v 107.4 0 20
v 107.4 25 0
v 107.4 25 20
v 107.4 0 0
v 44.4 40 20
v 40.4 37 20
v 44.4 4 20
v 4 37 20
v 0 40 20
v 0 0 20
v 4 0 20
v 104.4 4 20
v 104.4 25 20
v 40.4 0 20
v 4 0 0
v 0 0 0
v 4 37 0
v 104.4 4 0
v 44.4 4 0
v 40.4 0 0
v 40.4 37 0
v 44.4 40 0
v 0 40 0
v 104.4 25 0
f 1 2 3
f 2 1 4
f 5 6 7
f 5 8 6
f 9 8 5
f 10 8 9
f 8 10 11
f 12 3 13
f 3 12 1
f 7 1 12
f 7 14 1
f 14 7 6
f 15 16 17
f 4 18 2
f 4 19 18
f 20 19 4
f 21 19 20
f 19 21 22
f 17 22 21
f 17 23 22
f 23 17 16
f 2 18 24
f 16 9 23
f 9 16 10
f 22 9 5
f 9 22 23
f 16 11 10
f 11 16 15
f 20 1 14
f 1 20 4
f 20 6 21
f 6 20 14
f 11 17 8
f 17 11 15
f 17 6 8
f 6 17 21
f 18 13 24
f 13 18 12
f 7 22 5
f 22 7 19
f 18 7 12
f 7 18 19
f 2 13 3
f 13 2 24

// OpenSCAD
w = 36.4;

difference() {
  cube([w + 11 + 60, 40, 20]);

  // left cutout
  translate([4, -3, -1])
  cube([w, 40, 24]);

  // right cutout
  translate([w + 8, 4, -1])
  cube([60, 40, 24]);

  // shorten rightmost part of the hook
  translate([w + 60, 25, -1])
  cube([20, 40, 24]);
}
